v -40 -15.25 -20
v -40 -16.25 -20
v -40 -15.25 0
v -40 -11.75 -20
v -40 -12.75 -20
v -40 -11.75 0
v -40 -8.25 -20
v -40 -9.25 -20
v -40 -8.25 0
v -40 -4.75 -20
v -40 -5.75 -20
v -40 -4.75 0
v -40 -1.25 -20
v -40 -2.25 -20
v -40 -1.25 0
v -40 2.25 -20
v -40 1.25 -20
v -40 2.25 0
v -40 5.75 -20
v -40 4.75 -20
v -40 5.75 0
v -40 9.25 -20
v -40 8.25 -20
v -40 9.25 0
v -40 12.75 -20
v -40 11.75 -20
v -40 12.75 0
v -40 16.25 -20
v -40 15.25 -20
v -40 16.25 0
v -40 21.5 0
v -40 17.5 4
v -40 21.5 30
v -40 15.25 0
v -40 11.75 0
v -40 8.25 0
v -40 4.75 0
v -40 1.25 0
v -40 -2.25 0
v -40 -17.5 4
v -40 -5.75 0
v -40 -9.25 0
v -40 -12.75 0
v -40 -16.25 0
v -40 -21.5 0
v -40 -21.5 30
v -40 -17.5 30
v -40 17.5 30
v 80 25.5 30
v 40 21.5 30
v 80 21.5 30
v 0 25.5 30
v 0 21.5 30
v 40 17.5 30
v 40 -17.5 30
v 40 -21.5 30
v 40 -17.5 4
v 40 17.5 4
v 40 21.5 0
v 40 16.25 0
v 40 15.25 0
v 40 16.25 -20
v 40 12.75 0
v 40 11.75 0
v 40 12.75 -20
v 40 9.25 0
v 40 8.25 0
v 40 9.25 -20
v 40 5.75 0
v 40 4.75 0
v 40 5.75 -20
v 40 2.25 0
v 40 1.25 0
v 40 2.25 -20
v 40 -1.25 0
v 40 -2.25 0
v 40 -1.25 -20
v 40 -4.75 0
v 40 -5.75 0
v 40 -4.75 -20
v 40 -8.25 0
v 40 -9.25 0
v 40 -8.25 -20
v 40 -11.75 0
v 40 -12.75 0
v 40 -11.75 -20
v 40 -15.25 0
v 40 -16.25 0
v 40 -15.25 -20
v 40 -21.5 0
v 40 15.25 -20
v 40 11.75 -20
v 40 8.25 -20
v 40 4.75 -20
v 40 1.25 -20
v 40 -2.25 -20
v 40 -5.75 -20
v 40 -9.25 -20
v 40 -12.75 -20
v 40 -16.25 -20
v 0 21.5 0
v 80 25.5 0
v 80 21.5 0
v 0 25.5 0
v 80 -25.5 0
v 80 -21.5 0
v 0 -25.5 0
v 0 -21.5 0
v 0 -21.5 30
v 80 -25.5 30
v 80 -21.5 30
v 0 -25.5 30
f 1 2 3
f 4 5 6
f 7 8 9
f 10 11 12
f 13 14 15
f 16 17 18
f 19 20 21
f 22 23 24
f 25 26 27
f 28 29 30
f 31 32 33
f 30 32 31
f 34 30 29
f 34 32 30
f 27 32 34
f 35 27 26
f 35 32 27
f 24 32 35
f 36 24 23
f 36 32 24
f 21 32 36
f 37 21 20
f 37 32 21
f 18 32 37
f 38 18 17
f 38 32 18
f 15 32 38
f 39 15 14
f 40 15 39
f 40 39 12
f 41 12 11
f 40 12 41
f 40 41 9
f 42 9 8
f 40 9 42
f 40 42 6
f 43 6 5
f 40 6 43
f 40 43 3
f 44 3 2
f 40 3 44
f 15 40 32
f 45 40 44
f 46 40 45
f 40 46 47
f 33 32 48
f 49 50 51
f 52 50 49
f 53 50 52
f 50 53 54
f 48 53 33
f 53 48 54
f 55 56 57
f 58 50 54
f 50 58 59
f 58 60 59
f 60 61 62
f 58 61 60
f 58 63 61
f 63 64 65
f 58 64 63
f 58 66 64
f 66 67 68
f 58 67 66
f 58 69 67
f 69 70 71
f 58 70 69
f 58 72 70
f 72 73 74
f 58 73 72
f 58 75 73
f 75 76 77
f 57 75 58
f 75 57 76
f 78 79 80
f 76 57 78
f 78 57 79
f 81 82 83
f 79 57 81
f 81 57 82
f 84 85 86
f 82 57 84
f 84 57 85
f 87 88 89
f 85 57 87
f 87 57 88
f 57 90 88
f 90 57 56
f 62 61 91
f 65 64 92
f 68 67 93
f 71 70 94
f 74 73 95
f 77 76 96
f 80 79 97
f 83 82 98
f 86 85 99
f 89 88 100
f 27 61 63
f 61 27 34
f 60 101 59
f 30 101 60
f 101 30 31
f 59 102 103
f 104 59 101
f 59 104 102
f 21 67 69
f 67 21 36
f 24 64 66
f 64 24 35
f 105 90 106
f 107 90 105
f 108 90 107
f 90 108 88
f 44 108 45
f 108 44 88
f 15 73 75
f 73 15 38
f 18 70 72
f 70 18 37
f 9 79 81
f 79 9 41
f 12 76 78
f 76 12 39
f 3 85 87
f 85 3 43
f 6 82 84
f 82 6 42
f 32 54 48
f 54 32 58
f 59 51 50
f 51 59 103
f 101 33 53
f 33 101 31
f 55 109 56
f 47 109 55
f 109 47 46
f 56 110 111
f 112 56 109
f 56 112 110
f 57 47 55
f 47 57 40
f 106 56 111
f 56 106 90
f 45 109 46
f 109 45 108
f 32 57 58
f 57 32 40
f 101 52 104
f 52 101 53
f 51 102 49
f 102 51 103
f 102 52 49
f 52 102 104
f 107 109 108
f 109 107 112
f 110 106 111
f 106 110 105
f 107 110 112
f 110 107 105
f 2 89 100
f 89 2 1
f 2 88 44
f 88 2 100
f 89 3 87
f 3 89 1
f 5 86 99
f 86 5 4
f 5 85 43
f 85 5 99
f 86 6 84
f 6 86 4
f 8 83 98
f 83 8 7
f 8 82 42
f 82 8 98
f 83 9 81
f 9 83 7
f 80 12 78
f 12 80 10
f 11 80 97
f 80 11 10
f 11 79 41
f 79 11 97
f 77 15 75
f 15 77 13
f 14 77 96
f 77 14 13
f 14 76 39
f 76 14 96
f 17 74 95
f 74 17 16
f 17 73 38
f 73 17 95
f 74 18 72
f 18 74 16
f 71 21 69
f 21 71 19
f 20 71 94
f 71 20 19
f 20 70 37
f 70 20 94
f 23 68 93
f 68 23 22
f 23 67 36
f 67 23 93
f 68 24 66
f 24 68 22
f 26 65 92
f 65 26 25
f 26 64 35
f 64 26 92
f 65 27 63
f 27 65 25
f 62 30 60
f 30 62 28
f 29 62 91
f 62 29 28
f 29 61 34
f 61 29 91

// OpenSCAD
// Generated by SolidPython 1.1.3 on 2022-07-07 19:04:22
$fn=200;


union() {
	translate(v = [0, 0, 15.0000000000]) {
		translate(v = [0, 19.5000000000, 0]) {
			cube(center = true, size = [80, 4, 30]);
		}
	}
	translate(v = [0, 0, 15.0000000000]) {
		translate(v = [0, -19.5000000000, 0]) {
			cube(center = true, size = [80, 4, 30]);
		}
	}
	translate(v = [0, 0, 2.0000000000]) {
		cube(center = true, size = [80, 39, 4]);
	}
	translate(v = [0, 23.5000000000, 0]) {
		translate(v = [40.0000000000, 0, 0]) {
			translate(v = [0, 0, 15.0000000000]) {
				cube(center = true, size = [80, 4, 30]);
			}
		}
	}
	translate(v = [0, -23.5000000000, 0]) {
		translate(v = [40.0000000000, 0, 0]) {
			translate(v = [0, 0, 15.0000000000]) {
				cube(center = true, size = [80, 4, 30]);
			}
		}
	}
	translate(v = [0, 0.0000000000, 0]) {
		translate(v = [0, 1.7500000000, 0]) {
			translate(v = [0, -17.5000000000, 0]) {
				translate(v = [0, 0, -10.0000000000]) {
					cube(center = true, size = [80, 1, 20]);
				}
			}
		}
	}
	translate(v = [0, 3.5000000000, 0]) {
		translate(v = [0, 1.7500000000, 0]) {
			translate(v = [0, -17.5000000000, 0]) {
				translate(v = [0, 0, -10.0000000000]) {
					cube(center = true, size = [80, 1, 20]);
				}
			}
		}
	}
	translate(v = [0, 7.0000000000, 0]) {
		translate(v = [0, 1.7500000000, 0]) {
			translate(v = [0, -17.5000000000, 0]) {
				translate(v = [0, 0, -10.0000000000]) {
					cube(center = true, size = [80, 1, 20]);
				}
			}
		}
	}
	translate(v = [0, 10.5000000000, 0]) {
		translate(v = [0, 1.7500000000, 0]) {
			translate(v = [0, -17.5000000000, 0]) {
				translate(v = [0, 0, -10.0000000000]) {
					cube(center = true, size = [80, 1, 20]);
				}
			}
		}
	}
	translate(v = [0, 14.0000000000, 0]) {
		translate(v = [0, 1.7500000000, 0]) {
			translate(v = [0, -17.5000000000, 0]) {
				translate(v = [0, 0, -10.0000000000]) {
					cube(center = true, size = [80, 1, 20]);
				}
			}
		}
	}
	translate(v = [0, 17.5000000000, 0]) {
		translate(v = [0, 1.7500000000, 0]) {
			translate(v = [0, -17.5000000000, 0]) {
				translate(v = [0, 0, -10.0000000000]) {
					cube(center = true, size = [80, 1, 20]);
				}
			}
		}
	}
	translate(v = [0, 21.0000000000, 0]) {
		translate(v = [0, 1.7500000000, 0]) {
			translate(v = [0, -17.5000000000, 0]) {
				translate(v = [0, 0, -10.0000000000]) {
					cube(center = true, size = [80, 1, 20]);
				}
			}
		}
	}
	translate(v = [0, 24.5000000000, 0]) {
		translate(v = [0, 1.7500000000, 0]) {
			translate(v = [0, -17.5000000000, 0]) {
				translate(v = [0, 0, -10.0000000000]) {
					cube(center = true, size = [80, 1, 20]);
				}
			}
		}
	}
	translate(v = [0, 28.0000000000, 0]) {
		translate(v = [0, 1.7500000000, 0]) {
			translate(v = [0, -17.5000000000, 0]) {
				translate(v = [0, 0, -10.0000000000]) {
					cube(center = true, size = [80, 1, 20]);
				}
			}
		}
	}
	translate(v = [0, 31.5000000000, 0]) {
		translate(v = [0, 1.7500000000, 0]) {
			translate(v = [0, -17.5000000000, 0]) {
				translate(v = [0, 0, -10.0000000000]) {
					cube(center = true, size = [80, 1, 20]);
				}
			}
		}
	}
}
/***********************************************
*********      SolidPython code:      **********
************************************************
 
from solid import *
from solid.utils import *
from math import asin, atan, pi, cos, sin, sqrt, tan, acos
import toml
import os

eps = 1  # epsilon for hollow cone artifacts

"""a nozzle on either end of a hollow cylinder to couple two hoses of different diameter"""


#OBJECT PARAMETERS#
wall_thickness = 2
def DoorSeal(
    number_fins,
    module_length,
    door_height,
    door_overlap_height,
    door_width,
    fin_thickness,
    wall_thickness,
):
    # create cube of wall thickness and door_heightxmodule_length
    outer_overlap = cube(
        [module_length, wall_thickness, door_overlap_height],center=True)
    inner_overlap = cube(
        [module_length, wall_thickness, door_overlap_height],center=True)
    #move the inner and outer away by door_width/2
    outer_overlap = translate([0,door_width/2+wall_thickness/2,0])(outer_overlap)
    inner_overlap = translate([0,-door_width/2-wall_thickness/2,0])(inner_overlap)
    # move them up to the xy plane
    outer_overlap = translate([0,0,door_overlap_height/2])(outer_overlap)
    inner_overlap = translate([0,0,door_overlap_height/2])(inner_overlap)
    # join the two cubes by a cube of module_lengthxdoor_widthxwall_thickness
    overlap = cube(
        [module_length, door_width+wall_thickness, wall_thickness],center=True)
    overlap = translate([0,0,wall_thickness/2])(overlap)

    # create a small cube inside to allow modules to be connected
    coupler = cube(
        [module_length, wall_thickness,door_overlap_height],center=True)
    # move the coupler to the xy plane
    coupler = translate([0,0,door_overlap_height/2])(coupler)
    # move coupler module_length/4 along x axis
    coupler = translate([module_length/2,0,0])(coupler)
    # set one on either end
    outer_coupler = translate([0,door_width/2 + 1.5*wall_thickness,0])(coupler)
    inner_coupler = translate([0,-door_width/2 - 1.5*wall_thickness,0])(coupler)


    # create the fins
    fin = cube(
        [module_length, fin_thickness, door_height],center=True)
        # move fin to under the xy plane
    fin = translate([0,0,-door_height/2])(fin)
    # move fins back by door_width/2
    fin = translate([0,-door_width/2,0])(fin)
    fins = []
    # we are going to place the fins evenly along the y axis which is door_width/number_fins
    fin_spacing = door_width / number_fins
    # center fin given the fin_spacing
    fin = translate([0,fin_spacing/2,0])(fin)
    for i in range(number_fins):
        cur_fin = translate([0,i*fin_spacing,0])(fin)
        fins.append(cur_fin)

    door_seal = outer_overlap + inner_overlap + overlap + outer_coupler + inner_coupler
    for fin in fins:
        door_seal += fin
    # also create door_seal_end without coupler
    door_seal_end = outer_overlap + inner_overlap + overlap
    for fin in fins:
        door_seal_end += fin


    return door_seal, door_seal_end


def render_object(render_object, filename):
    """
    creates a .stl and .scad solution for the given solidpython OpenSCAD object
    PARAMETERS:
        render_object: the OpenSCAD object
        filename: a string for the file to be saved
    """
    scad_render_to_file(render_object, filename + ".scad", file_header="$fn=200;")
    # render with OpenSCAD
    print("Openscad is now rendering the solution..")
    os.system("openscad -o " + filename + ".stl " + filename + ".scad &")


if __name__ == "__main__":
    config = toml.load("configuration.toml")
    door_seal, door_seal_end = DoorSeal(**config)
    render_object(door_seal, "door_seal")
    render_object(door_seal_end, "door_seal_end")
 
 
************************************************/
